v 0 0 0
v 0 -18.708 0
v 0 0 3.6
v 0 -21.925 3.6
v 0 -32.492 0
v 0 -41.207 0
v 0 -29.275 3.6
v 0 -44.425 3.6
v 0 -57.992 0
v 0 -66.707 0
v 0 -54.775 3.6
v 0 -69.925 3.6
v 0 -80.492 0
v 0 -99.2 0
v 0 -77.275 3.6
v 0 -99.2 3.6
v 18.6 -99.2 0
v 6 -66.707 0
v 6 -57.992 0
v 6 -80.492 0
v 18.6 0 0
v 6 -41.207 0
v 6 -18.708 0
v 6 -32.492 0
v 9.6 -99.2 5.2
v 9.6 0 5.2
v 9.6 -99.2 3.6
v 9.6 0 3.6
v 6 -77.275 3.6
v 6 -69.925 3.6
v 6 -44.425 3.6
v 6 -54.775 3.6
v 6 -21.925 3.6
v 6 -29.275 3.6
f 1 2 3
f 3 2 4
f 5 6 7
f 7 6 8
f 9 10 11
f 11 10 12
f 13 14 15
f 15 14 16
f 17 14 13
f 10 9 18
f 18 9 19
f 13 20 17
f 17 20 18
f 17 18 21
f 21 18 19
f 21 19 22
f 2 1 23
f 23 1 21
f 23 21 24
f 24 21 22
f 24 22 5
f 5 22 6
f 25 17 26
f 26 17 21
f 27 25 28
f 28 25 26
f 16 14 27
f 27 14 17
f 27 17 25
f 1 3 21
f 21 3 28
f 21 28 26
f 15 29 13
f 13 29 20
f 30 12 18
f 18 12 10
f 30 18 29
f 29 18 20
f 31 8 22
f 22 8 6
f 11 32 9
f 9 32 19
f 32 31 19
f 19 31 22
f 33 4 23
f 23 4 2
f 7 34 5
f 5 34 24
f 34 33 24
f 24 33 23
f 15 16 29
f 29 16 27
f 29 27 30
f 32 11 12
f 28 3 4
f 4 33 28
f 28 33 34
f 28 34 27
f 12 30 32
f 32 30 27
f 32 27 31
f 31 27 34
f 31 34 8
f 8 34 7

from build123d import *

# Parameters (mm, degrees)
BASE_DEPTH   = 99.2
JOIN_1_DEPTH = 6
CROQUIS3_W   = 9.6
CROQUIS3_H   = 99.2
JOIN_2_DEPTH = 0.4


with BuildPart() as part:
    # Croquis1 → BASE (new body)
    with BuildSketch(Plane(origin=(0, 0, 0), x_dir=(-1, 0, 0), z_dir=(0, 1, 0))):
        Polygon((0, 0), (-18.6, 0), (-9.6, 5.2), (-9.6, 4), (0, 4), align=None)
    extrude(amount=-BASE_DEPTH)

    # Croquis2 → JOIN_1 (cut)
    with BuildSketch(Plane(origin=(0, 0, 0), x_dir=(0, -1, 0), z_dir=(-1, 0, 0))):
        Polygon((18.35, -0.4), (21.925, 3.6), (29.275, 3.6), (32.85, -0.4), align=None)
        Polygon((40.85, -0.4), (44.425, 3.6), (54.775, 3.6), (58.35, -0.4), align=None)
        Polygon((69.925, 3.6), (66.35, -0.4), (80.85, -0.4), (77.275, 3.6), align=None)
    extrude(amount=-JOIN_1_DEPTH, mode=Mode.SUBTRACT)

    # Croquis3 → JOIN_2 (cut)
    with BuildSketch(Plane.XY.offset(4)):
        with Locations((4.8, -49.6)):
            Rectangle(CROQUIS3_W, CROQUIS3_H)
    extrude(amount=-JOIN_2_DEPTH, mode=Mode.SUBTRACT)


solid = part.part
